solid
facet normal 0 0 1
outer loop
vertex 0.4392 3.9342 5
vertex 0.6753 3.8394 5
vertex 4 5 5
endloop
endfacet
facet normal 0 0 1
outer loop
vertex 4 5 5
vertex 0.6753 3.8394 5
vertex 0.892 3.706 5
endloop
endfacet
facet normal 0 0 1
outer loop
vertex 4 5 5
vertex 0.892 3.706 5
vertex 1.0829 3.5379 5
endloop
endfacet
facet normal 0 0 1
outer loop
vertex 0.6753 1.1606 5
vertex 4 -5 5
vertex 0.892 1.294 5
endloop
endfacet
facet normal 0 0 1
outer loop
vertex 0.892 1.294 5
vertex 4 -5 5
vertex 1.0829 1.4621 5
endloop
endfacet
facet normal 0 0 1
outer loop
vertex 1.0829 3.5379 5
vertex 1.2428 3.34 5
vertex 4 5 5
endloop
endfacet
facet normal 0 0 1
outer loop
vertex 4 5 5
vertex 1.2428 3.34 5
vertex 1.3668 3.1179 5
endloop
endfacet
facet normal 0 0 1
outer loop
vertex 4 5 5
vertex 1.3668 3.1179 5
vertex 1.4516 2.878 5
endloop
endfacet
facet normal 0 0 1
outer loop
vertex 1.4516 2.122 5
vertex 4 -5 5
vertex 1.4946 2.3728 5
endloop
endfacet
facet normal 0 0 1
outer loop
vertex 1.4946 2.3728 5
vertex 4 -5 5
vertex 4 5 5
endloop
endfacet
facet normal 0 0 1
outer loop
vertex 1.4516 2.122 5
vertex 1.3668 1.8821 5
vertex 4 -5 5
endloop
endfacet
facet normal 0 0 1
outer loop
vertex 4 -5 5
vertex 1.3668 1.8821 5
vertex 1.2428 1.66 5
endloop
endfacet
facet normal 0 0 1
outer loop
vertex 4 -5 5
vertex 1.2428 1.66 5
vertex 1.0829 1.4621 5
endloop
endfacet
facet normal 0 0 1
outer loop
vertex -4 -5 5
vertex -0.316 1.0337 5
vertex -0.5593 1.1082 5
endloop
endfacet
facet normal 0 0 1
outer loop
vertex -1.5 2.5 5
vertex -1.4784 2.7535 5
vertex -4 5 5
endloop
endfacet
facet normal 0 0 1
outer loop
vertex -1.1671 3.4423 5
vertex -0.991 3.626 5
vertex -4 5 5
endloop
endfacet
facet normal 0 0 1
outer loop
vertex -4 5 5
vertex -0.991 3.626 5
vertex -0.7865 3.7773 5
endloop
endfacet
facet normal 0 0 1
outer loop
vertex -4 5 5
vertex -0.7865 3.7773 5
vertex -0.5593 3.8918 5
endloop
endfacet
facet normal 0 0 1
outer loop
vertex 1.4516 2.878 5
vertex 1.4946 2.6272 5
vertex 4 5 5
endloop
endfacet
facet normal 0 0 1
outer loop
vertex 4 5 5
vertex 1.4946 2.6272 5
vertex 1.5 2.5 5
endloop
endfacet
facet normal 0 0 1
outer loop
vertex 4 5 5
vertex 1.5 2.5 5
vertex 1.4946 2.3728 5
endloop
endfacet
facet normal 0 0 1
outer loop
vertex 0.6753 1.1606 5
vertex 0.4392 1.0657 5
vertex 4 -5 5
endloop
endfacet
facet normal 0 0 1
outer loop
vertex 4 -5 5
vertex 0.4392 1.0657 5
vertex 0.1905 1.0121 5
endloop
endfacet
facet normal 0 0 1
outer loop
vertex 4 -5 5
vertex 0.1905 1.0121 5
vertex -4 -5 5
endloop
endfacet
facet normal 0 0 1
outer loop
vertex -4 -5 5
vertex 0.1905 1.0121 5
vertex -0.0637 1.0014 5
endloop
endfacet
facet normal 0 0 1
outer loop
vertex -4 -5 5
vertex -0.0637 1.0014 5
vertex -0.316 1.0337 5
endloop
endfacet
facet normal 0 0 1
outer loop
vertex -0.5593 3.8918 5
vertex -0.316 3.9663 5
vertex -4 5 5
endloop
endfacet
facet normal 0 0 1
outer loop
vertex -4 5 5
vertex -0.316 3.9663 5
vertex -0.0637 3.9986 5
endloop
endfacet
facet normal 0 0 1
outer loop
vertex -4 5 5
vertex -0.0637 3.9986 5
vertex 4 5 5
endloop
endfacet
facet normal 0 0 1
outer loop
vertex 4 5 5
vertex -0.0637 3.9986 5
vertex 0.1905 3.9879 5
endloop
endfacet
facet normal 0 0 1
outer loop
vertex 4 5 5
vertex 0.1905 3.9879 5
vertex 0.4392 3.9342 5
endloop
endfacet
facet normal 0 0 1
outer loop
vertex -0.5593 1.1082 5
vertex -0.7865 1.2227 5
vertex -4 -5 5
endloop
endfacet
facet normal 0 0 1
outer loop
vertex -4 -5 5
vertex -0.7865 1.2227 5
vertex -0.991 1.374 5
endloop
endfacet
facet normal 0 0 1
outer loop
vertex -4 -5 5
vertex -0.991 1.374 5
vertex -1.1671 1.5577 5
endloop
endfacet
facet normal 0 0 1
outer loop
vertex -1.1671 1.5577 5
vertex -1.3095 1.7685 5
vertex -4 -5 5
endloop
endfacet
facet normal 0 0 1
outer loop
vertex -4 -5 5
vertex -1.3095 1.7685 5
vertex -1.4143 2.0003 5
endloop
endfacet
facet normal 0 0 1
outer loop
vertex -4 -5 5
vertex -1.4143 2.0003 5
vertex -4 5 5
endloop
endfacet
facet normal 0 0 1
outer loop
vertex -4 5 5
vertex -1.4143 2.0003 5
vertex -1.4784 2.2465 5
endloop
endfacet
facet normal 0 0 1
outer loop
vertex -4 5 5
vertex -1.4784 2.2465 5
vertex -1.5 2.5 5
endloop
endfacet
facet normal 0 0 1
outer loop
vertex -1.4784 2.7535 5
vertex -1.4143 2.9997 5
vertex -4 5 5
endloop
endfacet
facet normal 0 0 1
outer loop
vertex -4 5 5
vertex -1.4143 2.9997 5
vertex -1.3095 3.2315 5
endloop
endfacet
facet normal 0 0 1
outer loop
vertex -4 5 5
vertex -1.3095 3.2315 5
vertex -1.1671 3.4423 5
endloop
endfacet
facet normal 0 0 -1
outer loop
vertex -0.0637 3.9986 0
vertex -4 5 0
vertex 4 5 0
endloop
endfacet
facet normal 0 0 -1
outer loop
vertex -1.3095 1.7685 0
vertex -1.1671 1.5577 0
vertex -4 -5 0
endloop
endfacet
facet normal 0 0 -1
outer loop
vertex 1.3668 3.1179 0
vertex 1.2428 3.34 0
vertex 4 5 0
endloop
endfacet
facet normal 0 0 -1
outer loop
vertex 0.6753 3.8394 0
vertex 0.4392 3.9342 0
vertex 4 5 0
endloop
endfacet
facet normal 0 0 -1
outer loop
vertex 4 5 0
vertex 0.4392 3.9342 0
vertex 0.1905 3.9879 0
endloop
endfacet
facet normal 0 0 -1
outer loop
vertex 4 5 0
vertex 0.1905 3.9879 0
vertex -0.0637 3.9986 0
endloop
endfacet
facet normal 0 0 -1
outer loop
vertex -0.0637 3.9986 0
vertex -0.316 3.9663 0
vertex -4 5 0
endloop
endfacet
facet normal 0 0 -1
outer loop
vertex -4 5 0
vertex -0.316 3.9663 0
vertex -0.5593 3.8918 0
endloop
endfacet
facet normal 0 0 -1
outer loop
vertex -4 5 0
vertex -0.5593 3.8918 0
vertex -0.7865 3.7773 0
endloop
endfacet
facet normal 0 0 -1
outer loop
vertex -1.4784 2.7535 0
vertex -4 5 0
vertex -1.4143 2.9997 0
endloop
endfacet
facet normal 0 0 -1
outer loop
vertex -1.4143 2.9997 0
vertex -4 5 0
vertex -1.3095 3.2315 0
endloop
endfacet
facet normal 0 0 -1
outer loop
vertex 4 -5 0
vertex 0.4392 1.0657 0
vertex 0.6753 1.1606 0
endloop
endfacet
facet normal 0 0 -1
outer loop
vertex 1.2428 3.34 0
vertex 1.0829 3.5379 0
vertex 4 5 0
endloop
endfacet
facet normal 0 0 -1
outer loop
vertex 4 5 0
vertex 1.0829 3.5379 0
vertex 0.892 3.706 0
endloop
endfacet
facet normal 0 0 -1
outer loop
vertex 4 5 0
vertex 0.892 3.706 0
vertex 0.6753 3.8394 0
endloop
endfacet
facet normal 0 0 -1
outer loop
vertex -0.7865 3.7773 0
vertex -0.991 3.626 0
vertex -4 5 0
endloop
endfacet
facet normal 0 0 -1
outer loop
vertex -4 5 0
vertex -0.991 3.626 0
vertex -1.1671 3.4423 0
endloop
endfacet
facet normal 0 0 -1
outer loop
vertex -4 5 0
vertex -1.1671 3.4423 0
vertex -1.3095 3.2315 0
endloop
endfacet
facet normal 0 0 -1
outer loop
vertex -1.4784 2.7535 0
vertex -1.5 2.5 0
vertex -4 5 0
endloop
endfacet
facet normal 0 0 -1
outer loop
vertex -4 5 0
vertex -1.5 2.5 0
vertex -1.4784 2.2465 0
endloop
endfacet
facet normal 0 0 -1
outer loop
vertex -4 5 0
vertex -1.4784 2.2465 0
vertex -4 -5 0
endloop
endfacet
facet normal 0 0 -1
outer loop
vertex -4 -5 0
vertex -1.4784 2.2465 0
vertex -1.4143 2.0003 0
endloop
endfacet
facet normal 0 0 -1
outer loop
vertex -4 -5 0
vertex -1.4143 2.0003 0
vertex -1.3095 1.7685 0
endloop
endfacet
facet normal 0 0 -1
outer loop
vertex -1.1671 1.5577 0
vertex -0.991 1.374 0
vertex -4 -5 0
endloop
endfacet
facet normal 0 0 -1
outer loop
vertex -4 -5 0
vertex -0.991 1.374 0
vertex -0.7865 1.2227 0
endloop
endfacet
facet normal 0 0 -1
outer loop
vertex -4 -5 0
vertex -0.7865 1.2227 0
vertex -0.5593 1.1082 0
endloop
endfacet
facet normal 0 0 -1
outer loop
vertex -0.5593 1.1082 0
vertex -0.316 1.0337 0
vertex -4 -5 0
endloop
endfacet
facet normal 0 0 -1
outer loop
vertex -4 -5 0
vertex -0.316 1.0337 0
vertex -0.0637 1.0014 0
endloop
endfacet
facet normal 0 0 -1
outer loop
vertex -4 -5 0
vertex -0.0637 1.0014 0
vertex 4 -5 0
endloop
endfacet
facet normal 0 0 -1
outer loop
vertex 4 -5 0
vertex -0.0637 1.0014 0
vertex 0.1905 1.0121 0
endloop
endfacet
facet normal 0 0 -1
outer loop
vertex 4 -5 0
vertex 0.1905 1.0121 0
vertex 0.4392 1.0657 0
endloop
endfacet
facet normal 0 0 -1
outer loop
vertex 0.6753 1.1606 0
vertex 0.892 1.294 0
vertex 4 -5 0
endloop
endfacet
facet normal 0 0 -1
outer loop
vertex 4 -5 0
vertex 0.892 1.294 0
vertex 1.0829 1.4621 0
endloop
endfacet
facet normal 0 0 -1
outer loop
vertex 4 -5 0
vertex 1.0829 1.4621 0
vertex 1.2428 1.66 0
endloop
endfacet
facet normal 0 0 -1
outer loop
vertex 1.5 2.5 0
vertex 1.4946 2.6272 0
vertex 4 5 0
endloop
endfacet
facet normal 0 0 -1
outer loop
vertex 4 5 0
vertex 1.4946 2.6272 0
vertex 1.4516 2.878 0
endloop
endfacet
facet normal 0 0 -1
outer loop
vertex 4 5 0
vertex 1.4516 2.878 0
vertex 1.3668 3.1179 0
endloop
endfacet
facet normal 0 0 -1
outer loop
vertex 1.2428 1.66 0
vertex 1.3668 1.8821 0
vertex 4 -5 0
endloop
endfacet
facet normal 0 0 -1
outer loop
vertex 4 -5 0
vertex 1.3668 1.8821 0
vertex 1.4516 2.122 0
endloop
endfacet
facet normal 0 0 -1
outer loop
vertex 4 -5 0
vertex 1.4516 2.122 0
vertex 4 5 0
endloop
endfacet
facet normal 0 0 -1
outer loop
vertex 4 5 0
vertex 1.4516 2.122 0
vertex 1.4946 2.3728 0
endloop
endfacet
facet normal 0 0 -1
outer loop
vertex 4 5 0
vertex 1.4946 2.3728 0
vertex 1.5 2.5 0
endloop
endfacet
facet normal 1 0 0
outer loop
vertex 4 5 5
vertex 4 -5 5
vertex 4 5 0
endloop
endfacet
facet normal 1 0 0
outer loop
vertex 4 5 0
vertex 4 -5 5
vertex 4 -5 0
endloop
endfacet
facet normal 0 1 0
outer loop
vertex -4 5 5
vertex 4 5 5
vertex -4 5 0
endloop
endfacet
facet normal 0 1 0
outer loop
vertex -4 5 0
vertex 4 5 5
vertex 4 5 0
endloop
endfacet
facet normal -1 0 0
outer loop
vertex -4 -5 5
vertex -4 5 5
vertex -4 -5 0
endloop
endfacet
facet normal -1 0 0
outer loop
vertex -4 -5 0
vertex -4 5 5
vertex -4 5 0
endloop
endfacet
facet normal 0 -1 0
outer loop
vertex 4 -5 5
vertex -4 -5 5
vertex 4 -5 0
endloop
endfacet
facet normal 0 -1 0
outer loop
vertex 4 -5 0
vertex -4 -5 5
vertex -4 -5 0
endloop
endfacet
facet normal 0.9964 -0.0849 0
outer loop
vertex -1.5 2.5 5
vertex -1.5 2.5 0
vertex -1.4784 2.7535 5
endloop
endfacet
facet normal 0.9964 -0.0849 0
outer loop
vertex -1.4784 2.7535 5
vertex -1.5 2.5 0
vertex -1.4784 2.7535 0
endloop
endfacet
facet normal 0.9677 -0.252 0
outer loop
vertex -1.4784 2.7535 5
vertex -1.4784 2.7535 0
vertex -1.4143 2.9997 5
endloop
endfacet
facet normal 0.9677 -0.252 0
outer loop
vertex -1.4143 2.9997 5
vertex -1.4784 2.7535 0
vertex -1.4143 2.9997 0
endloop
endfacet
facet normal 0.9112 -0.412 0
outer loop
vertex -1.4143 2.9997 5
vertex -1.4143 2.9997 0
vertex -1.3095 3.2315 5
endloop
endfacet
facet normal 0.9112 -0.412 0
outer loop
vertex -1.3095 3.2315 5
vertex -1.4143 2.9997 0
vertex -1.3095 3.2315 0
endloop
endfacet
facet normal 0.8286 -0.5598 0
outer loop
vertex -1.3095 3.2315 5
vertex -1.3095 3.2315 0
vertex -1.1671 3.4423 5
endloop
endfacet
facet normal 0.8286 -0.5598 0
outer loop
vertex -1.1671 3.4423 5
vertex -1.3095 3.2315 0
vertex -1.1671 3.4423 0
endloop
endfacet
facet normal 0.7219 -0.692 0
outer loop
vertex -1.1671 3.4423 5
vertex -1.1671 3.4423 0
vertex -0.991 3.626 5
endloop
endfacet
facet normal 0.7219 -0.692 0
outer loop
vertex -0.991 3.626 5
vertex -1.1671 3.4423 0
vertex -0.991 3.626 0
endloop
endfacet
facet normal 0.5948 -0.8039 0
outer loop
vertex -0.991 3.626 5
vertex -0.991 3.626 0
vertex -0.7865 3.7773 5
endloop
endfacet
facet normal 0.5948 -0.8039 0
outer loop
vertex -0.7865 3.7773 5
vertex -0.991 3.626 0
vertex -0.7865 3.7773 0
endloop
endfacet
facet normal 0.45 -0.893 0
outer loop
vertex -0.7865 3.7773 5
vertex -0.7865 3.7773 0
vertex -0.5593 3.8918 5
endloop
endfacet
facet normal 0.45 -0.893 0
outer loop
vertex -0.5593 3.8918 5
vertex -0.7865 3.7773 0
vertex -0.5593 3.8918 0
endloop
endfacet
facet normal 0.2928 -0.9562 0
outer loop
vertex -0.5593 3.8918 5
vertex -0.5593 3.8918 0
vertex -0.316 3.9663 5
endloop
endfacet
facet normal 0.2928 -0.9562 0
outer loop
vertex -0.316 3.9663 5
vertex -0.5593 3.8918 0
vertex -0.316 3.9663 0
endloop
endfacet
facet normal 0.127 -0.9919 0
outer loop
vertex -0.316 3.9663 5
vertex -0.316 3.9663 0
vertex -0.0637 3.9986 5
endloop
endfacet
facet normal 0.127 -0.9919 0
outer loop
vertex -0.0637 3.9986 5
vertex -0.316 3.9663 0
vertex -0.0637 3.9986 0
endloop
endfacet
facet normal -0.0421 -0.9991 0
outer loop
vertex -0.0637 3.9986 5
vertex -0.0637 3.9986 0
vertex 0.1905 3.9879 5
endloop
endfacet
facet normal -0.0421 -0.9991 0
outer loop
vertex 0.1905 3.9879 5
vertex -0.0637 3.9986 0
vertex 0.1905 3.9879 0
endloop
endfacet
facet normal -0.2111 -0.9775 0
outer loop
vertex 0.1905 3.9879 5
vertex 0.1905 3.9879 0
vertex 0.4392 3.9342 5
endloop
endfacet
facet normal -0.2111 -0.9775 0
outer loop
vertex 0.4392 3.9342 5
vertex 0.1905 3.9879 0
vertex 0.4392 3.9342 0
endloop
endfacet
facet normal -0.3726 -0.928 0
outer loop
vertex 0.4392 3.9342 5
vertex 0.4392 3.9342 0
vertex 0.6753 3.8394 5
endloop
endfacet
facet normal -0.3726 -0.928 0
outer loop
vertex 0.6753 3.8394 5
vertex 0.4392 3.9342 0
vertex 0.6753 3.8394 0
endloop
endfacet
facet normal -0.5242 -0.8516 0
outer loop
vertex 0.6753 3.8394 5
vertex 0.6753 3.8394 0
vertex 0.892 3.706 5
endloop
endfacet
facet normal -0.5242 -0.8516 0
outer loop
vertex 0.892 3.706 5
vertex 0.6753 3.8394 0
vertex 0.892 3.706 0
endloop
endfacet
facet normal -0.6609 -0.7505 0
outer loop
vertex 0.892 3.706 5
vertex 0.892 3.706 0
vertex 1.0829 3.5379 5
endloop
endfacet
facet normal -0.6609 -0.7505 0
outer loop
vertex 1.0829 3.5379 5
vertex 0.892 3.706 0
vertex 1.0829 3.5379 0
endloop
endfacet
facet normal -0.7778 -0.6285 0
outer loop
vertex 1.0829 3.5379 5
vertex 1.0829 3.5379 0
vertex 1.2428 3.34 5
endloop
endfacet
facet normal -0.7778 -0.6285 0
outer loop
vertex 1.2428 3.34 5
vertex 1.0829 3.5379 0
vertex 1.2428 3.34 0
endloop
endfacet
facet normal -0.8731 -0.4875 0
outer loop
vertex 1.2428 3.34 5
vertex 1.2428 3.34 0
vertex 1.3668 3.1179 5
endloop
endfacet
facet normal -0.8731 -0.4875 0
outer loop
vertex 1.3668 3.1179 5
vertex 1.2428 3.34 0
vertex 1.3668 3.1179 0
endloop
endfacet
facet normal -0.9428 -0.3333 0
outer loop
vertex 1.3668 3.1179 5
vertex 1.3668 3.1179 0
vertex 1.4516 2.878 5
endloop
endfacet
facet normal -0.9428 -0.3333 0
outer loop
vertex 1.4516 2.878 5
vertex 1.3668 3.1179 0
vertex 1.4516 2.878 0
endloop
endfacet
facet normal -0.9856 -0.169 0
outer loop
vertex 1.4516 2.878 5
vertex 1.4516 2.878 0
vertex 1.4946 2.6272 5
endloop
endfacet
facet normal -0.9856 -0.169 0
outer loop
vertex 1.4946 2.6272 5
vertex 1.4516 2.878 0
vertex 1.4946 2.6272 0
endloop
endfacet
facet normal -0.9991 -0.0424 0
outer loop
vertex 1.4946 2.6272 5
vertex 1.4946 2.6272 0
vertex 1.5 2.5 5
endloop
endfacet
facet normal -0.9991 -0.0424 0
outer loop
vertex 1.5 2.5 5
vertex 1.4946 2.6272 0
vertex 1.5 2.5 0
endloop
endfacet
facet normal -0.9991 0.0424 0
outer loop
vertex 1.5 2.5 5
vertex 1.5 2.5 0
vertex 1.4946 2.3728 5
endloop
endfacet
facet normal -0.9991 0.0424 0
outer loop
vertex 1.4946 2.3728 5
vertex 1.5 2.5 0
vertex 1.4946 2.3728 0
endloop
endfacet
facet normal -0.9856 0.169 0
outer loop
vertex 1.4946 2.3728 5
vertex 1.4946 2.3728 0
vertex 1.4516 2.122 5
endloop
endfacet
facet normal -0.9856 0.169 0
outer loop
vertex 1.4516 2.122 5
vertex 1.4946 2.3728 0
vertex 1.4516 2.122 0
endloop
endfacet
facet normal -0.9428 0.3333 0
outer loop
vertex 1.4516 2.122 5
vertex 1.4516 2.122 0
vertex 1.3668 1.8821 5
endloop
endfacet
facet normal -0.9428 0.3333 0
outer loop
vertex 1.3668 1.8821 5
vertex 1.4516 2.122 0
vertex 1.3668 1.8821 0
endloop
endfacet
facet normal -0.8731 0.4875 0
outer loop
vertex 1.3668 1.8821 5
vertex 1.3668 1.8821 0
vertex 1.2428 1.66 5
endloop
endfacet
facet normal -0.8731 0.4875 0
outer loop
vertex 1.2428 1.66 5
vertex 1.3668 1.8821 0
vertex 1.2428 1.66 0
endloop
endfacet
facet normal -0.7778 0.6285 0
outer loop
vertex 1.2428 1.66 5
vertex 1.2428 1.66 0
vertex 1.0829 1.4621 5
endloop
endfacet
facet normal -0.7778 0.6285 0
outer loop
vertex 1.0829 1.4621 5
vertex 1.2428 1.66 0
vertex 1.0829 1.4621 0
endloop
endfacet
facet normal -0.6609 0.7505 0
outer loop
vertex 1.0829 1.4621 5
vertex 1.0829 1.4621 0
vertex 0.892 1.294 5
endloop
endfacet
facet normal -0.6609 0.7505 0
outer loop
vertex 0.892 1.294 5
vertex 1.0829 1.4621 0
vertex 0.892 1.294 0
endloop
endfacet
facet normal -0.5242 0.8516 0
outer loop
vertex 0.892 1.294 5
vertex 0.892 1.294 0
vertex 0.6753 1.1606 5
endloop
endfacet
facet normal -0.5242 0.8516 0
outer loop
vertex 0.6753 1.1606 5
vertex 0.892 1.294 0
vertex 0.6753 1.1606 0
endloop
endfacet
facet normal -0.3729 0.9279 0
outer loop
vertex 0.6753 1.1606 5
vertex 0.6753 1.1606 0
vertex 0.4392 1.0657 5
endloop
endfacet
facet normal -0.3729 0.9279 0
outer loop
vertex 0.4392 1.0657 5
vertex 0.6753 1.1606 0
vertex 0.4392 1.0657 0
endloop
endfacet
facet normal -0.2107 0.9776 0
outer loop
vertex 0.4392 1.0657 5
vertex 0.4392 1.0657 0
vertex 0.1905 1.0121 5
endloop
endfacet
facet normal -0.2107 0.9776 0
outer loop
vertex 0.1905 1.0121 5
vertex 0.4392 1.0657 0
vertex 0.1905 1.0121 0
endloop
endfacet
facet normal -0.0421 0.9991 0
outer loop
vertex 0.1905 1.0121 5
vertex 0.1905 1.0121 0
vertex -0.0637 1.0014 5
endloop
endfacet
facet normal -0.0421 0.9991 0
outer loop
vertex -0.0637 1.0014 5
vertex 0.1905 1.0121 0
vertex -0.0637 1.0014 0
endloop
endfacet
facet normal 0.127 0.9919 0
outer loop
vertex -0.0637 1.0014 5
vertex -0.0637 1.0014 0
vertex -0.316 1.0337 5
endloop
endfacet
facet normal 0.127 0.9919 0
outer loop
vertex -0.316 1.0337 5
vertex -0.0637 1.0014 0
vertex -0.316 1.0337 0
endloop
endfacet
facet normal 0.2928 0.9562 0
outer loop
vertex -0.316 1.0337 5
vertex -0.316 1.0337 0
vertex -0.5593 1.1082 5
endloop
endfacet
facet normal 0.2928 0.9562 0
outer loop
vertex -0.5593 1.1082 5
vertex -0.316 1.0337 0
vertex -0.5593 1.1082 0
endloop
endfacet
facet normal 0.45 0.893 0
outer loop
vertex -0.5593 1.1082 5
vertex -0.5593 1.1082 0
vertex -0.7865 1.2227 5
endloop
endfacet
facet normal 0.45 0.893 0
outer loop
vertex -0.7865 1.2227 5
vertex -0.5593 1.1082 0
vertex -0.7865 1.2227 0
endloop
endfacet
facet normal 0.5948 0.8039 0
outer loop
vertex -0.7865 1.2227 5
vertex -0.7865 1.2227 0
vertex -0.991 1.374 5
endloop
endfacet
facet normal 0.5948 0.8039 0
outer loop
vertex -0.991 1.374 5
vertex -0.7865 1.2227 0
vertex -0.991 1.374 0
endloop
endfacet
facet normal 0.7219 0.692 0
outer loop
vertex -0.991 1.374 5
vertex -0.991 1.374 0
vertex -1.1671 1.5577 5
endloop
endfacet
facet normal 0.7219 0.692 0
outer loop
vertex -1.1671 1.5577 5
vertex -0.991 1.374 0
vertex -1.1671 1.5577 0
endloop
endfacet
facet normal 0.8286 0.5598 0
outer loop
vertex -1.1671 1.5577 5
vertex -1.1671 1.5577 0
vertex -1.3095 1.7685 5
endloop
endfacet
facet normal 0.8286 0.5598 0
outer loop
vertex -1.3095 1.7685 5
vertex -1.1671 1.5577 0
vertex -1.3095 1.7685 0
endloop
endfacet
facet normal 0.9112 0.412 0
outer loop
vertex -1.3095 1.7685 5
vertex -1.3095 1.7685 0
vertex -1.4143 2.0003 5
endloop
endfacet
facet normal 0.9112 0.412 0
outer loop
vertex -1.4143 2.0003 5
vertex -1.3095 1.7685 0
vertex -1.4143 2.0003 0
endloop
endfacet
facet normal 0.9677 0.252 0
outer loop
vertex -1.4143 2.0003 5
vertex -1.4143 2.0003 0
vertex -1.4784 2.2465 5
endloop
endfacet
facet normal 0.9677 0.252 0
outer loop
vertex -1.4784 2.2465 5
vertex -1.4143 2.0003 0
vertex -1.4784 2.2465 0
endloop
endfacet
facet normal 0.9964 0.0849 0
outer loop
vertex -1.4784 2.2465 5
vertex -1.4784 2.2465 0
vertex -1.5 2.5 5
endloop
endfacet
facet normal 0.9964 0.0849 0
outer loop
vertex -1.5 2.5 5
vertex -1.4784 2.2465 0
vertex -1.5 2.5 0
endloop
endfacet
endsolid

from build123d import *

# Parameters (mm, degrees)
ESQUISSE1_W        = 8
ESQUISSE1_H        = 10
ESQUISSE1_R        = 1.5
BOSS_EXTRU_1_DEPTH = 5


with BuildPart() as part:
    # Esquisse1 → Boss.-Extru.1 (new body)
    with BuildSketch(Plane.XY):
        Rectangle(ESQUISSE1_W, ESQUISSE1_H)
        with Locations((0, 2.5)):
            Circle(ESQUISSE1_R, mode=Mode.SUBTRACT)
    extrude(amount=BOSS_EXTRU_1_DEPTH)


solid = part.part
